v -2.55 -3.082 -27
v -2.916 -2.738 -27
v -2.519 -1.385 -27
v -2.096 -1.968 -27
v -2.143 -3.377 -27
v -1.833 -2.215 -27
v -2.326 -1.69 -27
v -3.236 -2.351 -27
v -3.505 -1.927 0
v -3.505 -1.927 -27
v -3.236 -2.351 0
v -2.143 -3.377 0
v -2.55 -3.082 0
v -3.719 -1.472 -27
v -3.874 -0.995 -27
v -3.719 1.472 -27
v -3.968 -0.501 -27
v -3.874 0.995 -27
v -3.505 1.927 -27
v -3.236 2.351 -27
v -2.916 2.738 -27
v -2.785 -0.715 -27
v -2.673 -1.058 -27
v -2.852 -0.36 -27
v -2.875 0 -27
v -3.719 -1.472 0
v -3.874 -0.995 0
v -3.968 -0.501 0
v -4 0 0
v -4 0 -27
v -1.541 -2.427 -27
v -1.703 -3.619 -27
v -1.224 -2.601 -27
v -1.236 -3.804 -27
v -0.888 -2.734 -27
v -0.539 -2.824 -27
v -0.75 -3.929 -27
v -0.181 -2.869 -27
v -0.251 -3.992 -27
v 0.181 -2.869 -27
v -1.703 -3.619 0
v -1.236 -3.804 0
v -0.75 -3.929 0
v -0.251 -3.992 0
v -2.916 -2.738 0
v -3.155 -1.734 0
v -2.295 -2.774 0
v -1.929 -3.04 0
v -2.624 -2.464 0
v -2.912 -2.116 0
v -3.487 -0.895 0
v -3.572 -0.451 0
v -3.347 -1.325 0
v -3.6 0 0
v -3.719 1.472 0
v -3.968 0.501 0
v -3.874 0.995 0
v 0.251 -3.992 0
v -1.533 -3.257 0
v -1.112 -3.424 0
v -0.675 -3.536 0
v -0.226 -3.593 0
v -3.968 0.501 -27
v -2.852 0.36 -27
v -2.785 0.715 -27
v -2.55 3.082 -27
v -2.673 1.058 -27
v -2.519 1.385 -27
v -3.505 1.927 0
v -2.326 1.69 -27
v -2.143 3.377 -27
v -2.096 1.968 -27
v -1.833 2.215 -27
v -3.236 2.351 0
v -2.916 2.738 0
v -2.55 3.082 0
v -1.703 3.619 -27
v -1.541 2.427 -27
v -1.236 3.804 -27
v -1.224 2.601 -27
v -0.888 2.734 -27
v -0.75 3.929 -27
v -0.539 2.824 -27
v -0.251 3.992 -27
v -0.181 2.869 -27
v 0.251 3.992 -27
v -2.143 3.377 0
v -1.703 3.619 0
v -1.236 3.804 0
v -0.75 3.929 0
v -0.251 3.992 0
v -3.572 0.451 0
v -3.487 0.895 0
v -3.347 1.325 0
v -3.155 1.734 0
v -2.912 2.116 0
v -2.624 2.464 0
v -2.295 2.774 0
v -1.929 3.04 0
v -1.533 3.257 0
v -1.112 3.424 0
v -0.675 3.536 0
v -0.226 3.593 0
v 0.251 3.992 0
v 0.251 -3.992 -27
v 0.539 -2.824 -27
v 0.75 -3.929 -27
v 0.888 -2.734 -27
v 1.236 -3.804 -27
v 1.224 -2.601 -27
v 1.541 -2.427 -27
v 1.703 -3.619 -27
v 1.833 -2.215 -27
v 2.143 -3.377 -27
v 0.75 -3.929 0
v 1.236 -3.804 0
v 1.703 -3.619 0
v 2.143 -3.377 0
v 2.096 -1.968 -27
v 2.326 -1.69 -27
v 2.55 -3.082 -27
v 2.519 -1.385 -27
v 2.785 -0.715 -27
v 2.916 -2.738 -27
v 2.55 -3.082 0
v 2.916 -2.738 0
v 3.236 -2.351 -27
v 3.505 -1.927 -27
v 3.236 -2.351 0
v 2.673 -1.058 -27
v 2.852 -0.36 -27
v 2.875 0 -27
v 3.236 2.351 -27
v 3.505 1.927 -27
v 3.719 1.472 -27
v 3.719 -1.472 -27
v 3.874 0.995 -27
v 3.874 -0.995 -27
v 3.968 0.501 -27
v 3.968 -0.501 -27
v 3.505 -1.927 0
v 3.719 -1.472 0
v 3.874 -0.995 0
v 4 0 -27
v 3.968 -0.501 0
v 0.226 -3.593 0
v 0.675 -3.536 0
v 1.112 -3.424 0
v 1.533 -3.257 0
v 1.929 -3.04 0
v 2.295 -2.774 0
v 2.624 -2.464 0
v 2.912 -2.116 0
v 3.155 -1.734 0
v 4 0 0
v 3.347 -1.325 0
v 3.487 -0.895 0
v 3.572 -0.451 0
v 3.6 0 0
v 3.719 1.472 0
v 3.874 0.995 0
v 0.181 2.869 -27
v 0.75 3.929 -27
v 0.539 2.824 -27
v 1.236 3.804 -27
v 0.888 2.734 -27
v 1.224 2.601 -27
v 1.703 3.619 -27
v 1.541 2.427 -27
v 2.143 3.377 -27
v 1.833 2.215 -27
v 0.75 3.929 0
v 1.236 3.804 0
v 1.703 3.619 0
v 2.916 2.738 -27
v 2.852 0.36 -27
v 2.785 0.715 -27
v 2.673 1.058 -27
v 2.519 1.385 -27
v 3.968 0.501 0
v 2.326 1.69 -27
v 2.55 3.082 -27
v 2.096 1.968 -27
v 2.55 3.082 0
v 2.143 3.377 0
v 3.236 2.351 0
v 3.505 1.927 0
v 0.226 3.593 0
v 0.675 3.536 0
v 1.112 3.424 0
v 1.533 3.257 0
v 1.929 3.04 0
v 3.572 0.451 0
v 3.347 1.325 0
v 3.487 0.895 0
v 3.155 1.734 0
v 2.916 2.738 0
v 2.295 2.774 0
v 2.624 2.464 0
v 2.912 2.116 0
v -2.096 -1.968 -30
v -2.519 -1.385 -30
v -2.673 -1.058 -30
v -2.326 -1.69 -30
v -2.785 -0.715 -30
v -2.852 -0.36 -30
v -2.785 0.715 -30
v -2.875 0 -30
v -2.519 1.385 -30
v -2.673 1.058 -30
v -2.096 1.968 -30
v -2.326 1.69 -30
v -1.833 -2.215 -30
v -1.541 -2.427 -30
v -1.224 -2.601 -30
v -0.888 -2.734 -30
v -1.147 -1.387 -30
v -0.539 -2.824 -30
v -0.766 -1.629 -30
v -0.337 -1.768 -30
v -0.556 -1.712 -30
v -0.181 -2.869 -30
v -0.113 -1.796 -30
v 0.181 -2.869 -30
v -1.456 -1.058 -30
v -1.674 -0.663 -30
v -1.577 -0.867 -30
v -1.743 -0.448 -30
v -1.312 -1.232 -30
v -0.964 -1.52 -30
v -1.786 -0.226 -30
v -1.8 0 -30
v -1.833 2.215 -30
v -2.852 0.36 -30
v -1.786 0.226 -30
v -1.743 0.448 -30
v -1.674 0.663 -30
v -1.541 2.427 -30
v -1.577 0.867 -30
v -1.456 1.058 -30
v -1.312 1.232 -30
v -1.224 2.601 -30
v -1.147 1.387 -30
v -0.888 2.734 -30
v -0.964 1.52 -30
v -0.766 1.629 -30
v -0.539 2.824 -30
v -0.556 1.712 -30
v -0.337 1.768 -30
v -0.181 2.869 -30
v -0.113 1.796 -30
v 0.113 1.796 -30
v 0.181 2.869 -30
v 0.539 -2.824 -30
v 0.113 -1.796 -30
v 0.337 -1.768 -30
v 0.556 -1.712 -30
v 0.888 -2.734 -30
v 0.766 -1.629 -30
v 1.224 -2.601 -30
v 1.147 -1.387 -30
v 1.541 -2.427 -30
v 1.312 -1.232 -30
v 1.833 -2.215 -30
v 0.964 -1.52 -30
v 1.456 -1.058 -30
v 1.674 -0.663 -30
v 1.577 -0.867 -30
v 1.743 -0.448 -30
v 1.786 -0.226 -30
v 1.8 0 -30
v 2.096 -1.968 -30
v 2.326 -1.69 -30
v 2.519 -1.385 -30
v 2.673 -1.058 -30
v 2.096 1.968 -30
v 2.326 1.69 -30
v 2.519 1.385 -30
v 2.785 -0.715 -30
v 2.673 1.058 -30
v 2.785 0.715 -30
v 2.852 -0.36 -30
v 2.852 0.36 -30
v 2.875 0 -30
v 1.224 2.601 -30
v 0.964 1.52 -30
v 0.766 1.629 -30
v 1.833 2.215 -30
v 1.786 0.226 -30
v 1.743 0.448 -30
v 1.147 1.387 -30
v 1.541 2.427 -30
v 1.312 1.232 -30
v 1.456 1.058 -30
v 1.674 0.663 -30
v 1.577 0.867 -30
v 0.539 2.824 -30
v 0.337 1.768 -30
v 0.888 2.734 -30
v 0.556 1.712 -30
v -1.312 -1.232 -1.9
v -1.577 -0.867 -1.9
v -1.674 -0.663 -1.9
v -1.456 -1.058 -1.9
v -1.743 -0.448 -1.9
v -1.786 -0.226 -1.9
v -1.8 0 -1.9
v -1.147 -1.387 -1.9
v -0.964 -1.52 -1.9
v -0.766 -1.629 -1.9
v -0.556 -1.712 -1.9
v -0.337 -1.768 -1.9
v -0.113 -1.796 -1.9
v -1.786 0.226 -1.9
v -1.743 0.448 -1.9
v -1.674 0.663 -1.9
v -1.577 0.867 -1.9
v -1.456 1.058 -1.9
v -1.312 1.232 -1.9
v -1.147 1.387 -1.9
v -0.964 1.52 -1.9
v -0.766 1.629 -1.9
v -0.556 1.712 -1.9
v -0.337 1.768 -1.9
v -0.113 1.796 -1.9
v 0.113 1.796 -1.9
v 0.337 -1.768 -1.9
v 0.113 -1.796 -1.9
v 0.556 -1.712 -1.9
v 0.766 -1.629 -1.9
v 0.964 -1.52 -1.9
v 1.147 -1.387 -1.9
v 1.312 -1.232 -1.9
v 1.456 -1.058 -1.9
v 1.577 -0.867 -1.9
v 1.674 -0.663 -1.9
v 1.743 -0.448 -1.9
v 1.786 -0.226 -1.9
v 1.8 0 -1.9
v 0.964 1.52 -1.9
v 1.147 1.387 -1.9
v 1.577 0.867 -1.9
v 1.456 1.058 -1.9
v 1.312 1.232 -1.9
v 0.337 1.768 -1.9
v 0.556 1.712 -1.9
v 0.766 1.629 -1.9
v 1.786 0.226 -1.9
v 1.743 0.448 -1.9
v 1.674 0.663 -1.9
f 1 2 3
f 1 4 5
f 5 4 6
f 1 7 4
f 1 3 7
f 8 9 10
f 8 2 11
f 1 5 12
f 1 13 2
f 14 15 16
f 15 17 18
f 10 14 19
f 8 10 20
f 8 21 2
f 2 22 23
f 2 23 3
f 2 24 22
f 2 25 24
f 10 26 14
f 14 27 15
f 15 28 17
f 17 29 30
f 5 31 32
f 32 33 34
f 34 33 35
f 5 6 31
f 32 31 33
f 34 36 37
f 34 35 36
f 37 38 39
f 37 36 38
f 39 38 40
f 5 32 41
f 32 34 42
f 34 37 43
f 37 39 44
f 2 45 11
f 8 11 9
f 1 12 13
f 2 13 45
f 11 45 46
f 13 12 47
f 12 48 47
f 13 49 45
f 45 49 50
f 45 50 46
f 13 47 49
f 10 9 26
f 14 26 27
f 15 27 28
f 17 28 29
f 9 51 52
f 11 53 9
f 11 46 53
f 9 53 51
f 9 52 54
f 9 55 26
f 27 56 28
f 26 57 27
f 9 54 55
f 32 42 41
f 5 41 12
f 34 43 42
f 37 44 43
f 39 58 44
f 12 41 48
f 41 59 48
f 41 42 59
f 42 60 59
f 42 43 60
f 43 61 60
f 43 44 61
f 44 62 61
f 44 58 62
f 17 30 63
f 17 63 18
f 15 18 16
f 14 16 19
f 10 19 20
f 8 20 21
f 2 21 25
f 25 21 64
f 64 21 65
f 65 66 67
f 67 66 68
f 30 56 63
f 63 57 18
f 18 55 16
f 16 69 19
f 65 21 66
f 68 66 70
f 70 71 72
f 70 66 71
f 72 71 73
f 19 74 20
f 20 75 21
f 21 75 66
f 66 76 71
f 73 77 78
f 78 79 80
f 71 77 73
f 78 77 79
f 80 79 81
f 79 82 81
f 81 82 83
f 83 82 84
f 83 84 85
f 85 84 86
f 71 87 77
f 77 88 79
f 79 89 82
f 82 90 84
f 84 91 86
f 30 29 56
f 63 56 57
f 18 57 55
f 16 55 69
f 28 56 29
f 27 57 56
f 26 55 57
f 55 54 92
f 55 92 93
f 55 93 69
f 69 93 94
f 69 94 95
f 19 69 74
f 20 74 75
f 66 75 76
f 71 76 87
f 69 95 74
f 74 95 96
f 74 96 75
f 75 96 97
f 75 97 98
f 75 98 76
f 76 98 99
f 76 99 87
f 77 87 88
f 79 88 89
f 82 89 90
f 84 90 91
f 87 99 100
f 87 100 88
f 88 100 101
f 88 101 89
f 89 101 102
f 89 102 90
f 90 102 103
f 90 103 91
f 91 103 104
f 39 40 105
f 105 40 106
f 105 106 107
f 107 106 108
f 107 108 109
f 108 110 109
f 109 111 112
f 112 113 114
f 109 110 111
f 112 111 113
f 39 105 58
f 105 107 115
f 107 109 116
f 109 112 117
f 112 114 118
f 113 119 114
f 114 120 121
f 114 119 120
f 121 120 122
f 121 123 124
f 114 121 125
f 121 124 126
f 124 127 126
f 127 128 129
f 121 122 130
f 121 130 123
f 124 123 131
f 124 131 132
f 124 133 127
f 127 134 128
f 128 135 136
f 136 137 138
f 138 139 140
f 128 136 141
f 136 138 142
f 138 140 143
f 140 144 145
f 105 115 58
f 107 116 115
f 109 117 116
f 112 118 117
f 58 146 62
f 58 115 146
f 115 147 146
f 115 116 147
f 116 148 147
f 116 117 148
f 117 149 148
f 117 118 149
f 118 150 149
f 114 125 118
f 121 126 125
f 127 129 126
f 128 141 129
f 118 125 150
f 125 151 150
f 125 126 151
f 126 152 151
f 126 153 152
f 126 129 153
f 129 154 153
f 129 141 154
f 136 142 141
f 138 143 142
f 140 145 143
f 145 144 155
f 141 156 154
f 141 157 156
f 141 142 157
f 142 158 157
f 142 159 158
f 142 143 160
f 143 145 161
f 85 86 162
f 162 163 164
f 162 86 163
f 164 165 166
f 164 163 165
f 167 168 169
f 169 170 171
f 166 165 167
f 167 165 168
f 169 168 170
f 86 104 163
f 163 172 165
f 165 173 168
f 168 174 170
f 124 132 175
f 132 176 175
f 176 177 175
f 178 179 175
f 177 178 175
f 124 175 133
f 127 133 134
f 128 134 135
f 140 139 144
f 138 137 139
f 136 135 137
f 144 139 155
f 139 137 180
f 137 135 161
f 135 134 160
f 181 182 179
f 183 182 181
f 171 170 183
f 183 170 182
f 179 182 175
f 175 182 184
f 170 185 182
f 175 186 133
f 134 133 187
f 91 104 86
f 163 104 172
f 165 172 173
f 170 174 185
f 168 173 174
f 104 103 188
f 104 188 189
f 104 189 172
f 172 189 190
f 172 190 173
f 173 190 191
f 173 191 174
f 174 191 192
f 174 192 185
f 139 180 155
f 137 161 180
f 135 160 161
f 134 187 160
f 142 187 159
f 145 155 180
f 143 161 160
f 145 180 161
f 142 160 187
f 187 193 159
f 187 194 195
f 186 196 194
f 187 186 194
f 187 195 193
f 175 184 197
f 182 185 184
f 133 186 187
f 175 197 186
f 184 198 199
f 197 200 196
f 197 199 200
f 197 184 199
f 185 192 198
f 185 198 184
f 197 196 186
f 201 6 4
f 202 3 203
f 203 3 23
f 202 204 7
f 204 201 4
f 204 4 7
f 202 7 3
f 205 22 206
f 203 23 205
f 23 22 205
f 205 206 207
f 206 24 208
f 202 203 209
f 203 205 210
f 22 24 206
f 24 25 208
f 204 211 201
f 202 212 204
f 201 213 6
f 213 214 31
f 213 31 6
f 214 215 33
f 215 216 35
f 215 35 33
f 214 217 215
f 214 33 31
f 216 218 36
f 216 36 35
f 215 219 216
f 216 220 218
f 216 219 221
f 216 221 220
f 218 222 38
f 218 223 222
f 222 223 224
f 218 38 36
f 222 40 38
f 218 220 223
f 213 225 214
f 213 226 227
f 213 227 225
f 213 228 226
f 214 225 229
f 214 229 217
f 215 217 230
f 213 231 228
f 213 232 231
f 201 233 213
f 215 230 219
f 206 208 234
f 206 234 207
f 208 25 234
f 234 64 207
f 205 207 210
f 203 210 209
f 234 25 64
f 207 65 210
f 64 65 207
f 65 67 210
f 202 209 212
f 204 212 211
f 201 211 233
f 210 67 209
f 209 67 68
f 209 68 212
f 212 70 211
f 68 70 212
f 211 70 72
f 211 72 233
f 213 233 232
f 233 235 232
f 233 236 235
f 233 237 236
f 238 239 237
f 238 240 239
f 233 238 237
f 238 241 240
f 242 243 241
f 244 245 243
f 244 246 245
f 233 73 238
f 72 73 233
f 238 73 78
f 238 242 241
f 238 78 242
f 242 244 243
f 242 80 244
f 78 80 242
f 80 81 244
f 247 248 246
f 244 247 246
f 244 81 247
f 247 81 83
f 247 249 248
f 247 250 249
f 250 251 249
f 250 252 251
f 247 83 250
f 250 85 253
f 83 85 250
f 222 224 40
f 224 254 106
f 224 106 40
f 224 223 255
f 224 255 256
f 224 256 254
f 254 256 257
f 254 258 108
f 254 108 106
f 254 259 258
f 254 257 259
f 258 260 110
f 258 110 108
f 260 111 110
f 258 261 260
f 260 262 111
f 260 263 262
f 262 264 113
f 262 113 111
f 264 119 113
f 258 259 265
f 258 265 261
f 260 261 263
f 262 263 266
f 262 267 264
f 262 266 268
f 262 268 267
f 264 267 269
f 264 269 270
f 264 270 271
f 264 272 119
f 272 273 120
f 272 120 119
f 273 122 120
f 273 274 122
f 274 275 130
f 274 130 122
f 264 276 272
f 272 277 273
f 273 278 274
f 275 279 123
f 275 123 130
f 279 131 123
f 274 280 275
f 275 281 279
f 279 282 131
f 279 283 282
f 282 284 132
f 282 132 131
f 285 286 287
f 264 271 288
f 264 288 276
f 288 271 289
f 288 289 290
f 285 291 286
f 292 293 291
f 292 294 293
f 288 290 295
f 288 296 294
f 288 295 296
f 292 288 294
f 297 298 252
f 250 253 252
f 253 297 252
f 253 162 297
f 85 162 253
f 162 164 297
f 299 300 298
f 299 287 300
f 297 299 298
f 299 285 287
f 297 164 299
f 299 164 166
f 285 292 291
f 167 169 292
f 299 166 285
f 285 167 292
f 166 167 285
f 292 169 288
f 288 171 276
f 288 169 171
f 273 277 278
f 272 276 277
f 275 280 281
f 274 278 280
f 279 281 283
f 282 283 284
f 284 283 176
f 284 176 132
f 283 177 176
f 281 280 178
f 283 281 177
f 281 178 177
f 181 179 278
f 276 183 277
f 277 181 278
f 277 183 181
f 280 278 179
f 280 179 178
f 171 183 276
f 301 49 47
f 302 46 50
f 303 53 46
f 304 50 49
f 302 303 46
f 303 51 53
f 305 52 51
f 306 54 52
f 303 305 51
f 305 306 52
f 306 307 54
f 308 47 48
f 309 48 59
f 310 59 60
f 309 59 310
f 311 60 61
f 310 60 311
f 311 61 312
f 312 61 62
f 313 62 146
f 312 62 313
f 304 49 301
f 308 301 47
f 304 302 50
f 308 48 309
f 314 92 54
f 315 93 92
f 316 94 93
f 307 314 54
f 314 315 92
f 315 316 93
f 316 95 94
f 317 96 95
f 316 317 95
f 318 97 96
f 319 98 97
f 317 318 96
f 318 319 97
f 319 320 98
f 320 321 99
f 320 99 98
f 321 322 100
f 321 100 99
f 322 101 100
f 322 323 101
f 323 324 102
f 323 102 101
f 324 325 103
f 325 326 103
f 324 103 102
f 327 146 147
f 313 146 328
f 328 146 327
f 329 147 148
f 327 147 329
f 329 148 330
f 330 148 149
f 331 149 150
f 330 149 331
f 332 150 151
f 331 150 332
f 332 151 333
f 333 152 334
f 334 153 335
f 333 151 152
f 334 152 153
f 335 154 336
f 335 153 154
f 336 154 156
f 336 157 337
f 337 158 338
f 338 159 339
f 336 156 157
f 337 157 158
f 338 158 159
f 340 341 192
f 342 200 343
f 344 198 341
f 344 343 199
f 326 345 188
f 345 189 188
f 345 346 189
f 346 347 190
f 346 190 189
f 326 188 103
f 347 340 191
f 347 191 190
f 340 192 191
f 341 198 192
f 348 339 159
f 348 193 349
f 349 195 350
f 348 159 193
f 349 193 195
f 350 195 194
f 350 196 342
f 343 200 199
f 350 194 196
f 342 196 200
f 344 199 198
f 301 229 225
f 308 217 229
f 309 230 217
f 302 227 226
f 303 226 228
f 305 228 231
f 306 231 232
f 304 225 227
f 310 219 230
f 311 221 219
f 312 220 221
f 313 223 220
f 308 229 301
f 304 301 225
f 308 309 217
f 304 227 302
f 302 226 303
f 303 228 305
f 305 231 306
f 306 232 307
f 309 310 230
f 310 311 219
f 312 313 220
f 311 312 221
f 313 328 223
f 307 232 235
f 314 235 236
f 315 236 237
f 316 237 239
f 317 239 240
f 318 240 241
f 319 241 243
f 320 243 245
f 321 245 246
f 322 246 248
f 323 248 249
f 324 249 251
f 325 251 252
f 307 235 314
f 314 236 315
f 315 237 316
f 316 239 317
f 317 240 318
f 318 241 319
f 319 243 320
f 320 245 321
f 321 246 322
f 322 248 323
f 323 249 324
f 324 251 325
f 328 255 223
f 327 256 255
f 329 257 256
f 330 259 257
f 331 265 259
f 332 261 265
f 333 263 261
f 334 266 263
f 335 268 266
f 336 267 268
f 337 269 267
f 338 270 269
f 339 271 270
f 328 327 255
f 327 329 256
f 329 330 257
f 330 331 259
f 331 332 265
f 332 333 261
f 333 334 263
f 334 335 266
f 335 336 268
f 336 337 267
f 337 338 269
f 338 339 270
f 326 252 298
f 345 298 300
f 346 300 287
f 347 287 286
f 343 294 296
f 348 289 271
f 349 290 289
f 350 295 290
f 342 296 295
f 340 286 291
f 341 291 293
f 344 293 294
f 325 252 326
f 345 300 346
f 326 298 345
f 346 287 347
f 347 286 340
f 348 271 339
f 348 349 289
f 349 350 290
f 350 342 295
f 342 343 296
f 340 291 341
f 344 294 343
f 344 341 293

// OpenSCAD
$fn = 50;

difference() {
	union() {
		translate(v = [0, 0, -27.0]) {
			cylinder(h = 30, r = 4.0);
		}
		#translate(v = [0, 0, -30.0]) {
			cylinder(h = 30, r = 2.875);
		}
	}
	union() {
		translate(v = [0, 0, 0]) {
			rotate(a = [0, 0, 0]) {
				difference() {
					union() {
						translate(v = [0, 0, -30.0]) {
							cylinder(h = 30, r = 1.5);
						}
						translate(v = [0, 0, -1.9]) {
							cylinder(h = 1.9, r1 = 1.8, r2 = 3.6);
						}
						translate(v = [0, 0, -30.0]) {
							cylinder(h = 30, r = 1.8);
						}
						translate(v = [0, 0, -30.0]) {
							cylinder(h = 30, r = 1.5);
						}
					}
					union();
				}
			}
		}
		#cylinder(h = 3, r = 5.0);
	}
}
